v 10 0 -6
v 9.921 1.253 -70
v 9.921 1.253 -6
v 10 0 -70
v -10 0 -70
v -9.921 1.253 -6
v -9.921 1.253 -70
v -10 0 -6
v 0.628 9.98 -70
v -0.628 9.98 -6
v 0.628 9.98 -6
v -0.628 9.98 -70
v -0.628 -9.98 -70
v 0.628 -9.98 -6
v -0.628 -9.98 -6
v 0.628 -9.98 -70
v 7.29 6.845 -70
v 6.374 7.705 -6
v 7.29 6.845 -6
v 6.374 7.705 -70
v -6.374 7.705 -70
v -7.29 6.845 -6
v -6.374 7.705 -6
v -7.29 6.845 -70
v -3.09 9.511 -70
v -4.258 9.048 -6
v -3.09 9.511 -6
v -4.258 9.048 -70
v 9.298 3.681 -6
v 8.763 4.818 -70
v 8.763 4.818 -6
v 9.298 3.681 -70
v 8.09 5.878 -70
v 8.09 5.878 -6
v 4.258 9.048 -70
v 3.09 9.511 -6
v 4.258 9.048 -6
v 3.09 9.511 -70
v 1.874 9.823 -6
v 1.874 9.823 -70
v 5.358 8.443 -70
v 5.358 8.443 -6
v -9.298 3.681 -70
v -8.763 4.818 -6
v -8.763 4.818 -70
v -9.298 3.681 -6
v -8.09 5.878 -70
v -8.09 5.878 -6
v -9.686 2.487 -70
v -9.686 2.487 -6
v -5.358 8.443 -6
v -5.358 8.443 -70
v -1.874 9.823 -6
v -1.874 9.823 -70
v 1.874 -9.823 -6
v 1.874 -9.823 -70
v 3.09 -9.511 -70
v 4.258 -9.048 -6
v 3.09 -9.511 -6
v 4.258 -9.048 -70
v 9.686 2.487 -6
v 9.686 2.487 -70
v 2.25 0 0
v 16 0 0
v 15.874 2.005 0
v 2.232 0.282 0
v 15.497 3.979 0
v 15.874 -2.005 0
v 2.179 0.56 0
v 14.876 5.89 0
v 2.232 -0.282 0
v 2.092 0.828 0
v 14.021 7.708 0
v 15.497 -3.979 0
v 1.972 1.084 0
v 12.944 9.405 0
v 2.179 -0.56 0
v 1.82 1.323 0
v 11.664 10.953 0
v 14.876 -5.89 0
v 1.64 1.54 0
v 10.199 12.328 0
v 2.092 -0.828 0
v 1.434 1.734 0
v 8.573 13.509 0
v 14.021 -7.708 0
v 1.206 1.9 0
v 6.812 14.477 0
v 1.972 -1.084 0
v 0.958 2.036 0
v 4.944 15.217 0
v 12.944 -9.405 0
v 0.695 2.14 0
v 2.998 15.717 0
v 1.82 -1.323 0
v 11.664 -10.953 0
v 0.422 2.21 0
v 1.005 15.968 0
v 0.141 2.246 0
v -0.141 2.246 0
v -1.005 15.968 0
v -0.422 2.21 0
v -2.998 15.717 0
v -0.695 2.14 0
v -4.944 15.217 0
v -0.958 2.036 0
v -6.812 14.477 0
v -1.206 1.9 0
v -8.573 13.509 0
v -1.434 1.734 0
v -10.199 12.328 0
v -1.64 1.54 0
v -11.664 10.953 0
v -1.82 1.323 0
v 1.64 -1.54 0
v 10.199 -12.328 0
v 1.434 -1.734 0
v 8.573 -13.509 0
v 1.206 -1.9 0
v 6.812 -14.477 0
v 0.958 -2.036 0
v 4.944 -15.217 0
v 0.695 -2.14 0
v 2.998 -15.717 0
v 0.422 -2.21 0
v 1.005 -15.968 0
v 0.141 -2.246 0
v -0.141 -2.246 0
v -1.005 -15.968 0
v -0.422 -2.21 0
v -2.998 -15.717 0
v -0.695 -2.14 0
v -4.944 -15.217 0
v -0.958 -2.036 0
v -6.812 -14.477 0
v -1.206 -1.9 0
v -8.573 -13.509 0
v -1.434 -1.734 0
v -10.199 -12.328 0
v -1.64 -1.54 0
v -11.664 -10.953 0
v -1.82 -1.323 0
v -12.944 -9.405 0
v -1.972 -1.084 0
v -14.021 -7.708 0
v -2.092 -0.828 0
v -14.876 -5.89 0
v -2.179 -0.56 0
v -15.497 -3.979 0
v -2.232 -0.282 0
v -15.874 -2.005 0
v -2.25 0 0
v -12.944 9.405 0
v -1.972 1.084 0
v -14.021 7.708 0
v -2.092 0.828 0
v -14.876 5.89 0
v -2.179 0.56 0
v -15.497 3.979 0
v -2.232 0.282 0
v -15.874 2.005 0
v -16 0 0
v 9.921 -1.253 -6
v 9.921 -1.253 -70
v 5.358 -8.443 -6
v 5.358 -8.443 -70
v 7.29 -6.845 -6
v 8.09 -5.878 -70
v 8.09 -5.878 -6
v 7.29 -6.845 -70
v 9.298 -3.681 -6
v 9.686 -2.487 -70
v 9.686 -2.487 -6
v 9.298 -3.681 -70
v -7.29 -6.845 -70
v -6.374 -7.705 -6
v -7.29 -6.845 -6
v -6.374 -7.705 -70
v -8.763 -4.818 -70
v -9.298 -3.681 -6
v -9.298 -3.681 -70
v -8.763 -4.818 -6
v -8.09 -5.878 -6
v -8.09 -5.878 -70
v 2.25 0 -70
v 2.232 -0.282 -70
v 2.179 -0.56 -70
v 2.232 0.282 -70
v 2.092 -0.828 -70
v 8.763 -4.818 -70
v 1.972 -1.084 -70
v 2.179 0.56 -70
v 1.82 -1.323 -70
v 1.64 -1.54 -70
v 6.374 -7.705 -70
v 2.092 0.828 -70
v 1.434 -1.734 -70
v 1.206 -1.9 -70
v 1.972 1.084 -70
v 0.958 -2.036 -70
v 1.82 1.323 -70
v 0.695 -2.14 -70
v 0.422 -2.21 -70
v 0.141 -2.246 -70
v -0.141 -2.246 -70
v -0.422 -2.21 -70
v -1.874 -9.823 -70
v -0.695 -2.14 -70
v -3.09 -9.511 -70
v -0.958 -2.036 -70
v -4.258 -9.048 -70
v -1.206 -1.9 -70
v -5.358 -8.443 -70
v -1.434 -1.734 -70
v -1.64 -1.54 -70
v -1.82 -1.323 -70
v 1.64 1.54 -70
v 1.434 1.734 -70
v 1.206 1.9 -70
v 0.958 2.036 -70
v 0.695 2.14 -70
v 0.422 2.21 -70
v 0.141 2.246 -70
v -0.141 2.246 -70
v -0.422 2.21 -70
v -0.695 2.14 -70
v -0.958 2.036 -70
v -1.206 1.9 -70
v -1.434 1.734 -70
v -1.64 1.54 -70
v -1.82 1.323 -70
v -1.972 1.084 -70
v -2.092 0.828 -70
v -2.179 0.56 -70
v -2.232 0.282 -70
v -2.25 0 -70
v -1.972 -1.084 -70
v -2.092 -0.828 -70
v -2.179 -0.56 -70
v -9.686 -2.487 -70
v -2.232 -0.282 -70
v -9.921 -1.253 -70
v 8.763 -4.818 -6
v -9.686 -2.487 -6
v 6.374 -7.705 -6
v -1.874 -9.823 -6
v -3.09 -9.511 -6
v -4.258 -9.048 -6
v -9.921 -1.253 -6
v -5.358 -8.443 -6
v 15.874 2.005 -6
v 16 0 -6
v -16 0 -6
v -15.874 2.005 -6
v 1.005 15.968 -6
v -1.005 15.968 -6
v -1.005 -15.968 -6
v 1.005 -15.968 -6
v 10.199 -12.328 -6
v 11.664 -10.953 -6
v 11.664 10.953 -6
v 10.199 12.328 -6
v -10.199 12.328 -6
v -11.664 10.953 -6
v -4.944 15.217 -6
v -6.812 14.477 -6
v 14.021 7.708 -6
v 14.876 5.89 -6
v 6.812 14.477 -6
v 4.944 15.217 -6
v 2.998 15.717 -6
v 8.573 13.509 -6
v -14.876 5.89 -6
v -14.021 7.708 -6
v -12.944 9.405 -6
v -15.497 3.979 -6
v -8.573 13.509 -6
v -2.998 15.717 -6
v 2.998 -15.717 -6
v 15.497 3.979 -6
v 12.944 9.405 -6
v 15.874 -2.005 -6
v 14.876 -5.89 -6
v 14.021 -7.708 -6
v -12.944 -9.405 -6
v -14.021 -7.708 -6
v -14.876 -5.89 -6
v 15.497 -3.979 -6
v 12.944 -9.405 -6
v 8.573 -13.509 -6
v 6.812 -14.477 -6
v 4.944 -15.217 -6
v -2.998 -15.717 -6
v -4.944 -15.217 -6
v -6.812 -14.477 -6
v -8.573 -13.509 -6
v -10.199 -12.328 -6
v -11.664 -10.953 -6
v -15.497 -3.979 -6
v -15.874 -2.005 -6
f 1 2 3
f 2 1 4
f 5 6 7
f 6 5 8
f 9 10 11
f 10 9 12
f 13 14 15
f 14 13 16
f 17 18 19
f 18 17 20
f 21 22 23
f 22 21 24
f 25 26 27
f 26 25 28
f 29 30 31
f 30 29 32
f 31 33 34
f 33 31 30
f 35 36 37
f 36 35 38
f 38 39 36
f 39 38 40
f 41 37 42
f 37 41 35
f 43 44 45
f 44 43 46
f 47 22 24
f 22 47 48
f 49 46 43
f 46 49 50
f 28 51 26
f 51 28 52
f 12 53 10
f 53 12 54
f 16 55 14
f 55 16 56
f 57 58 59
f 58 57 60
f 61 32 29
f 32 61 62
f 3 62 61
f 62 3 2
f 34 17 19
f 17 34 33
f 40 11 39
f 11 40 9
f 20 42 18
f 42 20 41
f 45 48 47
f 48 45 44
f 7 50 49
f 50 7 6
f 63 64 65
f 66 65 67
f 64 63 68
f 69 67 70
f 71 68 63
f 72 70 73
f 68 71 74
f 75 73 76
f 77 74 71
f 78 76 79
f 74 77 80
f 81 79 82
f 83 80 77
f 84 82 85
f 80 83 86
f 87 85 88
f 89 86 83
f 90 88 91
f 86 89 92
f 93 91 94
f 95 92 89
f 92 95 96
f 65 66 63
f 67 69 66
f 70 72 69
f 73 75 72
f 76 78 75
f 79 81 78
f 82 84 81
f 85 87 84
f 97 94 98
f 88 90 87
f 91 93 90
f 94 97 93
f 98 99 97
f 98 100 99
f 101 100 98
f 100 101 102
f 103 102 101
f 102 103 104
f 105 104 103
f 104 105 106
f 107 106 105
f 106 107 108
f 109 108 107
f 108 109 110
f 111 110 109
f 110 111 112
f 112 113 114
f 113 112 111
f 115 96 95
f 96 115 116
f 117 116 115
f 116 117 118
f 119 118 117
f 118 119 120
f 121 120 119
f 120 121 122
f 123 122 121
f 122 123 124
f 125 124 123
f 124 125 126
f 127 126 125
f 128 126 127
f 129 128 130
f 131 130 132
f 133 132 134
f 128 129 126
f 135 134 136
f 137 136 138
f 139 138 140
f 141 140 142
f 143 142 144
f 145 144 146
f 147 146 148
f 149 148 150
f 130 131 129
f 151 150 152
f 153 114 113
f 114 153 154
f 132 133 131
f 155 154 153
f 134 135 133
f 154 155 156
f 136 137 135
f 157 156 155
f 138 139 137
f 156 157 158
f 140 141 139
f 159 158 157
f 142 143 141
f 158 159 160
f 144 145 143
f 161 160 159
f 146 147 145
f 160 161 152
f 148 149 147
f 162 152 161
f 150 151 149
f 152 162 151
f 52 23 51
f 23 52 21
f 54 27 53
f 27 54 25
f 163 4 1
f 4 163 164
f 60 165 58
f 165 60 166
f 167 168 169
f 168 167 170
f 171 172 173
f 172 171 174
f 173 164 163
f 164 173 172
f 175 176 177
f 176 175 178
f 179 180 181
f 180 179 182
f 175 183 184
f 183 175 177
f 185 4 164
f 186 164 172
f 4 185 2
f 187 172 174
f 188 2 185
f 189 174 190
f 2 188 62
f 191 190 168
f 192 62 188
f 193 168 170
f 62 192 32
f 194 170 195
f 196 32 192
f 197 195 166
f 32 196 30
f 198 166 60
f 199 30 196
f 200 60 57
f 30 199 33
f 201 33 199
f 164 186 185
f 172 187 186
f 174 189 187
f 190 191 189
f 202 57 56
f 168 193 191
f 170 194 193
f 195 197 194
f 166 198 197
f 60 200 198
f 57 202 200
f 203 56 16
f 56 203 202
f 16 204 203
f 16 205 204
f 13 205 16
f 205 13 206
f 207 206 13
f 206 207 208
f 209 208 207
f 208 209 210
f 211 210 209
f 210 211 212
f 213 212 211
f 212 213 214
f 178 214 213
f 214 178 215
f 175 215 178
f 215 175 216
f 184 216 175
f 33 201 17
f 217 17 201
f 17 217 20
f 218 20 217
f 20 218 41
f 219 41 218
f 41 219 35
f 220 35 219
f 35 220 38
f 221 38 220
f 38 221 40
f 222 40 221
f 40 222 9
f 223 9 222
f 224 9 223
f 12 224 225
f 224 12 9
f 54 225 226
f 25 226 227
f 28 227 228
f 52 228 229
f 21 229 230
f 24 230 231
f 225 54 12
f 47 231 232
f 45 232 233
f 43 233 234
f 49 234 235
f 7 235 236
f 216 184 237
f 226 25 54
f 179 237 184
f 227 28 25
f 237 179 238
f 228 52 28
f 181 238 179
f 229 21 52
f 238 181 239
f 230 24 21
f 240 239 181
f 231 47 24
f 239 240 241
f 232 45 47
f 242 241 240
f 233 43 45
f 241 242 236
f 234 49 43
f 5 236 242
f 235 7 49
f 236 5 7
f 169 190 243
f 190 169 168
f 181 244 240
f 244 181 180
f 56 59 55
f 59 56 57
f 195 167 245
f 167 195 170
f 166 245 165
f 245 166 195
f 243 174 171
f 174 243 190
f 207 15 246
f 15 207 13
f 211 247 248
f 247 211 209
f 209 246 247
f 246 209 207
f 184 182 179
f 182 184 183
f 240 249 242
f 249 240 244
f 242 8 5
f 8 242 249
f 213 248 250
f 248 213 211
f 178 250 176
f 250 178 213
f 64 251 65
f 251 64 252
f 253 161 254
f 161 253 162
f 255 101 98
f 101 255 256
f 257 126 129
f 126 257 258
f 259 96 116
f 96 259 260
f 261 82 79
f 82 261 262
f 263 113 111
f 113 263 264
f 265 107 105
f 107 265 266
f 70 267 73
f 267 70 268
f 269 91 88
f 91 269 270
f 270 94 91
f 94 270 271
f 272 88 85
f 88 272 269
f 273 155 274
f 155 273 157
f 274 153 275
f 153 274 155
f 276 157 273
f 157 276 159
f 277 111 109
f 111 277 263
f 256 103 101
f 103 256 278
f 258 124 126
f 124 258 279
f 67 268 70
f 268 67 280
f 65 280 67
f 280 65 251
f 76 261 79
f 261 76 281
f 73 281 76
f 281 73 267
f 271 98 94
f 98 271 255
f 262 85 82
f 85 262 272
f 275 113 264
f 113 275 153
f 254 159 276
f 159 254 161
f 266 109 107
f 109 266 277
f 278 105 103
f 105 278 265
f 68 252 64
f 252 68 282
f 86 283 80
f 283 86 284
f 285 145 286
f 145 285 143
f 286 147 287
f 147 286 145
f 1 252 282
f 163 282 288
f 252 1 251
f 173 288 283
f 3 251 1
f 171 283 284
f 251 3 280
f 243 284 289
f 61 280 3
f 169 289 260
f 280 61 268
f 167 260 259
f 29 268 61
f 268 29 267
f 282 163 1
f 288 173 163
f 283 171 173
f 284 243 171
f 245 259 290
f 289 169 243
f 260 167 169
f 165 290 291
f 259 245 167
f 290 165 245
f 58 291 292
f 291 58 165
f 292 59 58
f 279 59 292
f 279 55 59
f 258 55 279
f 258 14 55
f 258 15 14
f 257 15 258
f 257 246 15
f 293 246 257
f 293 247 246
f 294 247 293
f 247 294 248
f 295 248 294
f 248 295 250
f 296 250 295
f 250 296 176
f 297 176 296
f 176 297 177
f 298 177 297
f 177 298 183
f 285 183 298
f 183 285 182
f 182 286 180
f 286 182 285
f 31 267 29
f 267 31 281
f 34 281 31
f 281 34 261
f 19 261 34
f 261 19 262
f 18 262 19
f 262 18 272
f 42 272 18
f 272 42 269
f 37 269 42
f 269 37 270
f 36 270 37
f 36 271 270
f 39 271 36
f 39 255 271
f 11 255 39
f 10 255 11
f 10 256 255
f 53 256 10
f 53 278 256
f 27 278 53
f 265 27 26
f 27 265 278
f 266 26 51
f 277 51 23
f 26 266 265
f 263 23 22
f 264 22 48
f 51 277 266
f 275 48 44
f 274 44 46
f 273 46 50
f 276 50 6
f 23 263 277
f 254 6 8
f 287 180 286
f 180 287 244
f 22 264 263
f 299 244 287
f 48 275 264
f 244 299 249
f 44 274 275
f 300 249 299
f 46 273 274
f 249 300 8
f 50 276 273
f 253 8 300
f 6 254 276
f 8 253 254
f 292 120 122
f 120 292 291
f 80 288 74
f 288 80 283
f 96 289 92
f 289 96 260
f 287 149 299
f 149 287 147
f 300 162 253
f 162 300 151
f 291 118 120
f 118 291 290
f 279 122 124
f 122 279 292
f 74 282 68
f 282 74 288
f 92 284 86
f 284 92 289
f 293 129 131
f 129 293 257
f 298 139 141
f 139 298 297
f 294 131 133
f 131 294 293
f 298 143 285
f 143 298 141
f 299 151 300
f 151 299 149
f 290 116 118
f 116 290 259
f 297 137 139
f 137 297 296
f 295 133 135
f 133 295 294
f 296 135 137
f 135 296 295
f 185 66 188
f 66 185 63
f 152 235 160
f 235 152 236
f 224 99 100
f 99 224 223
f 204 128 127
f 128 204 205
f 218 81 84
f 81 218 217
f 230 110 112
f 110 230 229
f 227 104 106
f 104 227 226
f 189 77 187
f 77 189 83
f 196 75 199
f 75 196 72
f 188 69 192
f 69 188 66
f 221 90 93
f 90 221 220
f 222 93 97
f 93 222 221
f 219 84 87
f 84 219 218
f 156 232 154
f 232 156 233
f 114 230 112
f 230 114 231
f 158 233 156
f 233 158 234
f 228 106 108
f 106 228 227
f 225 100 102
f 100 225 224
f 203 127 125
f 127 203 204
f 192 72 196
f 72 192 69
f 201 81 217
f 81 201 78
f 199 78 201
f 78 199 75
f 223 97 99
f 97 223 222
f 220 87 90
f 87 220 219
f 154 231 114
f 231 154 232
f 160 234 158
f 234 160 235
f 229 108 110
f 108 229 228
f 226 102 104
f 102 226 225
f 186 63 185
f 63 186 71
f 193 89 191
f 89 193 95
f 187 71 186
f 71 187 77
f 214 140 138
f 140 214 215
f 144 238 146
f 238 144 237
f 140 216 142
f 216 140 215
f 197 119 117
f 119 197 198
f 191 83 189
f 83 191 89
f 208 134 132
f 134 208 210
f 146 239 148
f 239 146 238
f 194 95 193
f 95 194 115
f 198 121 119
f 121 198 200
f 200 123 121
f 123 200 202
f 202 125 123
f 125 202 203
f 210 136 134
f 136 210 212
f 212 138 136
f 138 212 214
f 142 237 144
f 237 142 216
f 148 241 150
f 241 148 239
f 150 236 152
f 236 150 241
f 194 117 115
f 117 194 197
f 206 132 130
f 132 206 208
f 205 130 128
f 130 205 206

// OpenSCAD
$fn = 50;


difference() {
	union() {
		translate(v = [0, 0, -70.0000000000]) {
			cylinder(h = 70, r = 10.0000000000);
		}
		translate(v = [0, 0, -6.0000000000]) {
			cylinder(h = 6, r = 16.0000000000);
		}
	}
	union() {
		#translate(v = [0, 0, -70]) {
			cylinder(h = 70, r = 2.2500000000);
		}
	}
}
